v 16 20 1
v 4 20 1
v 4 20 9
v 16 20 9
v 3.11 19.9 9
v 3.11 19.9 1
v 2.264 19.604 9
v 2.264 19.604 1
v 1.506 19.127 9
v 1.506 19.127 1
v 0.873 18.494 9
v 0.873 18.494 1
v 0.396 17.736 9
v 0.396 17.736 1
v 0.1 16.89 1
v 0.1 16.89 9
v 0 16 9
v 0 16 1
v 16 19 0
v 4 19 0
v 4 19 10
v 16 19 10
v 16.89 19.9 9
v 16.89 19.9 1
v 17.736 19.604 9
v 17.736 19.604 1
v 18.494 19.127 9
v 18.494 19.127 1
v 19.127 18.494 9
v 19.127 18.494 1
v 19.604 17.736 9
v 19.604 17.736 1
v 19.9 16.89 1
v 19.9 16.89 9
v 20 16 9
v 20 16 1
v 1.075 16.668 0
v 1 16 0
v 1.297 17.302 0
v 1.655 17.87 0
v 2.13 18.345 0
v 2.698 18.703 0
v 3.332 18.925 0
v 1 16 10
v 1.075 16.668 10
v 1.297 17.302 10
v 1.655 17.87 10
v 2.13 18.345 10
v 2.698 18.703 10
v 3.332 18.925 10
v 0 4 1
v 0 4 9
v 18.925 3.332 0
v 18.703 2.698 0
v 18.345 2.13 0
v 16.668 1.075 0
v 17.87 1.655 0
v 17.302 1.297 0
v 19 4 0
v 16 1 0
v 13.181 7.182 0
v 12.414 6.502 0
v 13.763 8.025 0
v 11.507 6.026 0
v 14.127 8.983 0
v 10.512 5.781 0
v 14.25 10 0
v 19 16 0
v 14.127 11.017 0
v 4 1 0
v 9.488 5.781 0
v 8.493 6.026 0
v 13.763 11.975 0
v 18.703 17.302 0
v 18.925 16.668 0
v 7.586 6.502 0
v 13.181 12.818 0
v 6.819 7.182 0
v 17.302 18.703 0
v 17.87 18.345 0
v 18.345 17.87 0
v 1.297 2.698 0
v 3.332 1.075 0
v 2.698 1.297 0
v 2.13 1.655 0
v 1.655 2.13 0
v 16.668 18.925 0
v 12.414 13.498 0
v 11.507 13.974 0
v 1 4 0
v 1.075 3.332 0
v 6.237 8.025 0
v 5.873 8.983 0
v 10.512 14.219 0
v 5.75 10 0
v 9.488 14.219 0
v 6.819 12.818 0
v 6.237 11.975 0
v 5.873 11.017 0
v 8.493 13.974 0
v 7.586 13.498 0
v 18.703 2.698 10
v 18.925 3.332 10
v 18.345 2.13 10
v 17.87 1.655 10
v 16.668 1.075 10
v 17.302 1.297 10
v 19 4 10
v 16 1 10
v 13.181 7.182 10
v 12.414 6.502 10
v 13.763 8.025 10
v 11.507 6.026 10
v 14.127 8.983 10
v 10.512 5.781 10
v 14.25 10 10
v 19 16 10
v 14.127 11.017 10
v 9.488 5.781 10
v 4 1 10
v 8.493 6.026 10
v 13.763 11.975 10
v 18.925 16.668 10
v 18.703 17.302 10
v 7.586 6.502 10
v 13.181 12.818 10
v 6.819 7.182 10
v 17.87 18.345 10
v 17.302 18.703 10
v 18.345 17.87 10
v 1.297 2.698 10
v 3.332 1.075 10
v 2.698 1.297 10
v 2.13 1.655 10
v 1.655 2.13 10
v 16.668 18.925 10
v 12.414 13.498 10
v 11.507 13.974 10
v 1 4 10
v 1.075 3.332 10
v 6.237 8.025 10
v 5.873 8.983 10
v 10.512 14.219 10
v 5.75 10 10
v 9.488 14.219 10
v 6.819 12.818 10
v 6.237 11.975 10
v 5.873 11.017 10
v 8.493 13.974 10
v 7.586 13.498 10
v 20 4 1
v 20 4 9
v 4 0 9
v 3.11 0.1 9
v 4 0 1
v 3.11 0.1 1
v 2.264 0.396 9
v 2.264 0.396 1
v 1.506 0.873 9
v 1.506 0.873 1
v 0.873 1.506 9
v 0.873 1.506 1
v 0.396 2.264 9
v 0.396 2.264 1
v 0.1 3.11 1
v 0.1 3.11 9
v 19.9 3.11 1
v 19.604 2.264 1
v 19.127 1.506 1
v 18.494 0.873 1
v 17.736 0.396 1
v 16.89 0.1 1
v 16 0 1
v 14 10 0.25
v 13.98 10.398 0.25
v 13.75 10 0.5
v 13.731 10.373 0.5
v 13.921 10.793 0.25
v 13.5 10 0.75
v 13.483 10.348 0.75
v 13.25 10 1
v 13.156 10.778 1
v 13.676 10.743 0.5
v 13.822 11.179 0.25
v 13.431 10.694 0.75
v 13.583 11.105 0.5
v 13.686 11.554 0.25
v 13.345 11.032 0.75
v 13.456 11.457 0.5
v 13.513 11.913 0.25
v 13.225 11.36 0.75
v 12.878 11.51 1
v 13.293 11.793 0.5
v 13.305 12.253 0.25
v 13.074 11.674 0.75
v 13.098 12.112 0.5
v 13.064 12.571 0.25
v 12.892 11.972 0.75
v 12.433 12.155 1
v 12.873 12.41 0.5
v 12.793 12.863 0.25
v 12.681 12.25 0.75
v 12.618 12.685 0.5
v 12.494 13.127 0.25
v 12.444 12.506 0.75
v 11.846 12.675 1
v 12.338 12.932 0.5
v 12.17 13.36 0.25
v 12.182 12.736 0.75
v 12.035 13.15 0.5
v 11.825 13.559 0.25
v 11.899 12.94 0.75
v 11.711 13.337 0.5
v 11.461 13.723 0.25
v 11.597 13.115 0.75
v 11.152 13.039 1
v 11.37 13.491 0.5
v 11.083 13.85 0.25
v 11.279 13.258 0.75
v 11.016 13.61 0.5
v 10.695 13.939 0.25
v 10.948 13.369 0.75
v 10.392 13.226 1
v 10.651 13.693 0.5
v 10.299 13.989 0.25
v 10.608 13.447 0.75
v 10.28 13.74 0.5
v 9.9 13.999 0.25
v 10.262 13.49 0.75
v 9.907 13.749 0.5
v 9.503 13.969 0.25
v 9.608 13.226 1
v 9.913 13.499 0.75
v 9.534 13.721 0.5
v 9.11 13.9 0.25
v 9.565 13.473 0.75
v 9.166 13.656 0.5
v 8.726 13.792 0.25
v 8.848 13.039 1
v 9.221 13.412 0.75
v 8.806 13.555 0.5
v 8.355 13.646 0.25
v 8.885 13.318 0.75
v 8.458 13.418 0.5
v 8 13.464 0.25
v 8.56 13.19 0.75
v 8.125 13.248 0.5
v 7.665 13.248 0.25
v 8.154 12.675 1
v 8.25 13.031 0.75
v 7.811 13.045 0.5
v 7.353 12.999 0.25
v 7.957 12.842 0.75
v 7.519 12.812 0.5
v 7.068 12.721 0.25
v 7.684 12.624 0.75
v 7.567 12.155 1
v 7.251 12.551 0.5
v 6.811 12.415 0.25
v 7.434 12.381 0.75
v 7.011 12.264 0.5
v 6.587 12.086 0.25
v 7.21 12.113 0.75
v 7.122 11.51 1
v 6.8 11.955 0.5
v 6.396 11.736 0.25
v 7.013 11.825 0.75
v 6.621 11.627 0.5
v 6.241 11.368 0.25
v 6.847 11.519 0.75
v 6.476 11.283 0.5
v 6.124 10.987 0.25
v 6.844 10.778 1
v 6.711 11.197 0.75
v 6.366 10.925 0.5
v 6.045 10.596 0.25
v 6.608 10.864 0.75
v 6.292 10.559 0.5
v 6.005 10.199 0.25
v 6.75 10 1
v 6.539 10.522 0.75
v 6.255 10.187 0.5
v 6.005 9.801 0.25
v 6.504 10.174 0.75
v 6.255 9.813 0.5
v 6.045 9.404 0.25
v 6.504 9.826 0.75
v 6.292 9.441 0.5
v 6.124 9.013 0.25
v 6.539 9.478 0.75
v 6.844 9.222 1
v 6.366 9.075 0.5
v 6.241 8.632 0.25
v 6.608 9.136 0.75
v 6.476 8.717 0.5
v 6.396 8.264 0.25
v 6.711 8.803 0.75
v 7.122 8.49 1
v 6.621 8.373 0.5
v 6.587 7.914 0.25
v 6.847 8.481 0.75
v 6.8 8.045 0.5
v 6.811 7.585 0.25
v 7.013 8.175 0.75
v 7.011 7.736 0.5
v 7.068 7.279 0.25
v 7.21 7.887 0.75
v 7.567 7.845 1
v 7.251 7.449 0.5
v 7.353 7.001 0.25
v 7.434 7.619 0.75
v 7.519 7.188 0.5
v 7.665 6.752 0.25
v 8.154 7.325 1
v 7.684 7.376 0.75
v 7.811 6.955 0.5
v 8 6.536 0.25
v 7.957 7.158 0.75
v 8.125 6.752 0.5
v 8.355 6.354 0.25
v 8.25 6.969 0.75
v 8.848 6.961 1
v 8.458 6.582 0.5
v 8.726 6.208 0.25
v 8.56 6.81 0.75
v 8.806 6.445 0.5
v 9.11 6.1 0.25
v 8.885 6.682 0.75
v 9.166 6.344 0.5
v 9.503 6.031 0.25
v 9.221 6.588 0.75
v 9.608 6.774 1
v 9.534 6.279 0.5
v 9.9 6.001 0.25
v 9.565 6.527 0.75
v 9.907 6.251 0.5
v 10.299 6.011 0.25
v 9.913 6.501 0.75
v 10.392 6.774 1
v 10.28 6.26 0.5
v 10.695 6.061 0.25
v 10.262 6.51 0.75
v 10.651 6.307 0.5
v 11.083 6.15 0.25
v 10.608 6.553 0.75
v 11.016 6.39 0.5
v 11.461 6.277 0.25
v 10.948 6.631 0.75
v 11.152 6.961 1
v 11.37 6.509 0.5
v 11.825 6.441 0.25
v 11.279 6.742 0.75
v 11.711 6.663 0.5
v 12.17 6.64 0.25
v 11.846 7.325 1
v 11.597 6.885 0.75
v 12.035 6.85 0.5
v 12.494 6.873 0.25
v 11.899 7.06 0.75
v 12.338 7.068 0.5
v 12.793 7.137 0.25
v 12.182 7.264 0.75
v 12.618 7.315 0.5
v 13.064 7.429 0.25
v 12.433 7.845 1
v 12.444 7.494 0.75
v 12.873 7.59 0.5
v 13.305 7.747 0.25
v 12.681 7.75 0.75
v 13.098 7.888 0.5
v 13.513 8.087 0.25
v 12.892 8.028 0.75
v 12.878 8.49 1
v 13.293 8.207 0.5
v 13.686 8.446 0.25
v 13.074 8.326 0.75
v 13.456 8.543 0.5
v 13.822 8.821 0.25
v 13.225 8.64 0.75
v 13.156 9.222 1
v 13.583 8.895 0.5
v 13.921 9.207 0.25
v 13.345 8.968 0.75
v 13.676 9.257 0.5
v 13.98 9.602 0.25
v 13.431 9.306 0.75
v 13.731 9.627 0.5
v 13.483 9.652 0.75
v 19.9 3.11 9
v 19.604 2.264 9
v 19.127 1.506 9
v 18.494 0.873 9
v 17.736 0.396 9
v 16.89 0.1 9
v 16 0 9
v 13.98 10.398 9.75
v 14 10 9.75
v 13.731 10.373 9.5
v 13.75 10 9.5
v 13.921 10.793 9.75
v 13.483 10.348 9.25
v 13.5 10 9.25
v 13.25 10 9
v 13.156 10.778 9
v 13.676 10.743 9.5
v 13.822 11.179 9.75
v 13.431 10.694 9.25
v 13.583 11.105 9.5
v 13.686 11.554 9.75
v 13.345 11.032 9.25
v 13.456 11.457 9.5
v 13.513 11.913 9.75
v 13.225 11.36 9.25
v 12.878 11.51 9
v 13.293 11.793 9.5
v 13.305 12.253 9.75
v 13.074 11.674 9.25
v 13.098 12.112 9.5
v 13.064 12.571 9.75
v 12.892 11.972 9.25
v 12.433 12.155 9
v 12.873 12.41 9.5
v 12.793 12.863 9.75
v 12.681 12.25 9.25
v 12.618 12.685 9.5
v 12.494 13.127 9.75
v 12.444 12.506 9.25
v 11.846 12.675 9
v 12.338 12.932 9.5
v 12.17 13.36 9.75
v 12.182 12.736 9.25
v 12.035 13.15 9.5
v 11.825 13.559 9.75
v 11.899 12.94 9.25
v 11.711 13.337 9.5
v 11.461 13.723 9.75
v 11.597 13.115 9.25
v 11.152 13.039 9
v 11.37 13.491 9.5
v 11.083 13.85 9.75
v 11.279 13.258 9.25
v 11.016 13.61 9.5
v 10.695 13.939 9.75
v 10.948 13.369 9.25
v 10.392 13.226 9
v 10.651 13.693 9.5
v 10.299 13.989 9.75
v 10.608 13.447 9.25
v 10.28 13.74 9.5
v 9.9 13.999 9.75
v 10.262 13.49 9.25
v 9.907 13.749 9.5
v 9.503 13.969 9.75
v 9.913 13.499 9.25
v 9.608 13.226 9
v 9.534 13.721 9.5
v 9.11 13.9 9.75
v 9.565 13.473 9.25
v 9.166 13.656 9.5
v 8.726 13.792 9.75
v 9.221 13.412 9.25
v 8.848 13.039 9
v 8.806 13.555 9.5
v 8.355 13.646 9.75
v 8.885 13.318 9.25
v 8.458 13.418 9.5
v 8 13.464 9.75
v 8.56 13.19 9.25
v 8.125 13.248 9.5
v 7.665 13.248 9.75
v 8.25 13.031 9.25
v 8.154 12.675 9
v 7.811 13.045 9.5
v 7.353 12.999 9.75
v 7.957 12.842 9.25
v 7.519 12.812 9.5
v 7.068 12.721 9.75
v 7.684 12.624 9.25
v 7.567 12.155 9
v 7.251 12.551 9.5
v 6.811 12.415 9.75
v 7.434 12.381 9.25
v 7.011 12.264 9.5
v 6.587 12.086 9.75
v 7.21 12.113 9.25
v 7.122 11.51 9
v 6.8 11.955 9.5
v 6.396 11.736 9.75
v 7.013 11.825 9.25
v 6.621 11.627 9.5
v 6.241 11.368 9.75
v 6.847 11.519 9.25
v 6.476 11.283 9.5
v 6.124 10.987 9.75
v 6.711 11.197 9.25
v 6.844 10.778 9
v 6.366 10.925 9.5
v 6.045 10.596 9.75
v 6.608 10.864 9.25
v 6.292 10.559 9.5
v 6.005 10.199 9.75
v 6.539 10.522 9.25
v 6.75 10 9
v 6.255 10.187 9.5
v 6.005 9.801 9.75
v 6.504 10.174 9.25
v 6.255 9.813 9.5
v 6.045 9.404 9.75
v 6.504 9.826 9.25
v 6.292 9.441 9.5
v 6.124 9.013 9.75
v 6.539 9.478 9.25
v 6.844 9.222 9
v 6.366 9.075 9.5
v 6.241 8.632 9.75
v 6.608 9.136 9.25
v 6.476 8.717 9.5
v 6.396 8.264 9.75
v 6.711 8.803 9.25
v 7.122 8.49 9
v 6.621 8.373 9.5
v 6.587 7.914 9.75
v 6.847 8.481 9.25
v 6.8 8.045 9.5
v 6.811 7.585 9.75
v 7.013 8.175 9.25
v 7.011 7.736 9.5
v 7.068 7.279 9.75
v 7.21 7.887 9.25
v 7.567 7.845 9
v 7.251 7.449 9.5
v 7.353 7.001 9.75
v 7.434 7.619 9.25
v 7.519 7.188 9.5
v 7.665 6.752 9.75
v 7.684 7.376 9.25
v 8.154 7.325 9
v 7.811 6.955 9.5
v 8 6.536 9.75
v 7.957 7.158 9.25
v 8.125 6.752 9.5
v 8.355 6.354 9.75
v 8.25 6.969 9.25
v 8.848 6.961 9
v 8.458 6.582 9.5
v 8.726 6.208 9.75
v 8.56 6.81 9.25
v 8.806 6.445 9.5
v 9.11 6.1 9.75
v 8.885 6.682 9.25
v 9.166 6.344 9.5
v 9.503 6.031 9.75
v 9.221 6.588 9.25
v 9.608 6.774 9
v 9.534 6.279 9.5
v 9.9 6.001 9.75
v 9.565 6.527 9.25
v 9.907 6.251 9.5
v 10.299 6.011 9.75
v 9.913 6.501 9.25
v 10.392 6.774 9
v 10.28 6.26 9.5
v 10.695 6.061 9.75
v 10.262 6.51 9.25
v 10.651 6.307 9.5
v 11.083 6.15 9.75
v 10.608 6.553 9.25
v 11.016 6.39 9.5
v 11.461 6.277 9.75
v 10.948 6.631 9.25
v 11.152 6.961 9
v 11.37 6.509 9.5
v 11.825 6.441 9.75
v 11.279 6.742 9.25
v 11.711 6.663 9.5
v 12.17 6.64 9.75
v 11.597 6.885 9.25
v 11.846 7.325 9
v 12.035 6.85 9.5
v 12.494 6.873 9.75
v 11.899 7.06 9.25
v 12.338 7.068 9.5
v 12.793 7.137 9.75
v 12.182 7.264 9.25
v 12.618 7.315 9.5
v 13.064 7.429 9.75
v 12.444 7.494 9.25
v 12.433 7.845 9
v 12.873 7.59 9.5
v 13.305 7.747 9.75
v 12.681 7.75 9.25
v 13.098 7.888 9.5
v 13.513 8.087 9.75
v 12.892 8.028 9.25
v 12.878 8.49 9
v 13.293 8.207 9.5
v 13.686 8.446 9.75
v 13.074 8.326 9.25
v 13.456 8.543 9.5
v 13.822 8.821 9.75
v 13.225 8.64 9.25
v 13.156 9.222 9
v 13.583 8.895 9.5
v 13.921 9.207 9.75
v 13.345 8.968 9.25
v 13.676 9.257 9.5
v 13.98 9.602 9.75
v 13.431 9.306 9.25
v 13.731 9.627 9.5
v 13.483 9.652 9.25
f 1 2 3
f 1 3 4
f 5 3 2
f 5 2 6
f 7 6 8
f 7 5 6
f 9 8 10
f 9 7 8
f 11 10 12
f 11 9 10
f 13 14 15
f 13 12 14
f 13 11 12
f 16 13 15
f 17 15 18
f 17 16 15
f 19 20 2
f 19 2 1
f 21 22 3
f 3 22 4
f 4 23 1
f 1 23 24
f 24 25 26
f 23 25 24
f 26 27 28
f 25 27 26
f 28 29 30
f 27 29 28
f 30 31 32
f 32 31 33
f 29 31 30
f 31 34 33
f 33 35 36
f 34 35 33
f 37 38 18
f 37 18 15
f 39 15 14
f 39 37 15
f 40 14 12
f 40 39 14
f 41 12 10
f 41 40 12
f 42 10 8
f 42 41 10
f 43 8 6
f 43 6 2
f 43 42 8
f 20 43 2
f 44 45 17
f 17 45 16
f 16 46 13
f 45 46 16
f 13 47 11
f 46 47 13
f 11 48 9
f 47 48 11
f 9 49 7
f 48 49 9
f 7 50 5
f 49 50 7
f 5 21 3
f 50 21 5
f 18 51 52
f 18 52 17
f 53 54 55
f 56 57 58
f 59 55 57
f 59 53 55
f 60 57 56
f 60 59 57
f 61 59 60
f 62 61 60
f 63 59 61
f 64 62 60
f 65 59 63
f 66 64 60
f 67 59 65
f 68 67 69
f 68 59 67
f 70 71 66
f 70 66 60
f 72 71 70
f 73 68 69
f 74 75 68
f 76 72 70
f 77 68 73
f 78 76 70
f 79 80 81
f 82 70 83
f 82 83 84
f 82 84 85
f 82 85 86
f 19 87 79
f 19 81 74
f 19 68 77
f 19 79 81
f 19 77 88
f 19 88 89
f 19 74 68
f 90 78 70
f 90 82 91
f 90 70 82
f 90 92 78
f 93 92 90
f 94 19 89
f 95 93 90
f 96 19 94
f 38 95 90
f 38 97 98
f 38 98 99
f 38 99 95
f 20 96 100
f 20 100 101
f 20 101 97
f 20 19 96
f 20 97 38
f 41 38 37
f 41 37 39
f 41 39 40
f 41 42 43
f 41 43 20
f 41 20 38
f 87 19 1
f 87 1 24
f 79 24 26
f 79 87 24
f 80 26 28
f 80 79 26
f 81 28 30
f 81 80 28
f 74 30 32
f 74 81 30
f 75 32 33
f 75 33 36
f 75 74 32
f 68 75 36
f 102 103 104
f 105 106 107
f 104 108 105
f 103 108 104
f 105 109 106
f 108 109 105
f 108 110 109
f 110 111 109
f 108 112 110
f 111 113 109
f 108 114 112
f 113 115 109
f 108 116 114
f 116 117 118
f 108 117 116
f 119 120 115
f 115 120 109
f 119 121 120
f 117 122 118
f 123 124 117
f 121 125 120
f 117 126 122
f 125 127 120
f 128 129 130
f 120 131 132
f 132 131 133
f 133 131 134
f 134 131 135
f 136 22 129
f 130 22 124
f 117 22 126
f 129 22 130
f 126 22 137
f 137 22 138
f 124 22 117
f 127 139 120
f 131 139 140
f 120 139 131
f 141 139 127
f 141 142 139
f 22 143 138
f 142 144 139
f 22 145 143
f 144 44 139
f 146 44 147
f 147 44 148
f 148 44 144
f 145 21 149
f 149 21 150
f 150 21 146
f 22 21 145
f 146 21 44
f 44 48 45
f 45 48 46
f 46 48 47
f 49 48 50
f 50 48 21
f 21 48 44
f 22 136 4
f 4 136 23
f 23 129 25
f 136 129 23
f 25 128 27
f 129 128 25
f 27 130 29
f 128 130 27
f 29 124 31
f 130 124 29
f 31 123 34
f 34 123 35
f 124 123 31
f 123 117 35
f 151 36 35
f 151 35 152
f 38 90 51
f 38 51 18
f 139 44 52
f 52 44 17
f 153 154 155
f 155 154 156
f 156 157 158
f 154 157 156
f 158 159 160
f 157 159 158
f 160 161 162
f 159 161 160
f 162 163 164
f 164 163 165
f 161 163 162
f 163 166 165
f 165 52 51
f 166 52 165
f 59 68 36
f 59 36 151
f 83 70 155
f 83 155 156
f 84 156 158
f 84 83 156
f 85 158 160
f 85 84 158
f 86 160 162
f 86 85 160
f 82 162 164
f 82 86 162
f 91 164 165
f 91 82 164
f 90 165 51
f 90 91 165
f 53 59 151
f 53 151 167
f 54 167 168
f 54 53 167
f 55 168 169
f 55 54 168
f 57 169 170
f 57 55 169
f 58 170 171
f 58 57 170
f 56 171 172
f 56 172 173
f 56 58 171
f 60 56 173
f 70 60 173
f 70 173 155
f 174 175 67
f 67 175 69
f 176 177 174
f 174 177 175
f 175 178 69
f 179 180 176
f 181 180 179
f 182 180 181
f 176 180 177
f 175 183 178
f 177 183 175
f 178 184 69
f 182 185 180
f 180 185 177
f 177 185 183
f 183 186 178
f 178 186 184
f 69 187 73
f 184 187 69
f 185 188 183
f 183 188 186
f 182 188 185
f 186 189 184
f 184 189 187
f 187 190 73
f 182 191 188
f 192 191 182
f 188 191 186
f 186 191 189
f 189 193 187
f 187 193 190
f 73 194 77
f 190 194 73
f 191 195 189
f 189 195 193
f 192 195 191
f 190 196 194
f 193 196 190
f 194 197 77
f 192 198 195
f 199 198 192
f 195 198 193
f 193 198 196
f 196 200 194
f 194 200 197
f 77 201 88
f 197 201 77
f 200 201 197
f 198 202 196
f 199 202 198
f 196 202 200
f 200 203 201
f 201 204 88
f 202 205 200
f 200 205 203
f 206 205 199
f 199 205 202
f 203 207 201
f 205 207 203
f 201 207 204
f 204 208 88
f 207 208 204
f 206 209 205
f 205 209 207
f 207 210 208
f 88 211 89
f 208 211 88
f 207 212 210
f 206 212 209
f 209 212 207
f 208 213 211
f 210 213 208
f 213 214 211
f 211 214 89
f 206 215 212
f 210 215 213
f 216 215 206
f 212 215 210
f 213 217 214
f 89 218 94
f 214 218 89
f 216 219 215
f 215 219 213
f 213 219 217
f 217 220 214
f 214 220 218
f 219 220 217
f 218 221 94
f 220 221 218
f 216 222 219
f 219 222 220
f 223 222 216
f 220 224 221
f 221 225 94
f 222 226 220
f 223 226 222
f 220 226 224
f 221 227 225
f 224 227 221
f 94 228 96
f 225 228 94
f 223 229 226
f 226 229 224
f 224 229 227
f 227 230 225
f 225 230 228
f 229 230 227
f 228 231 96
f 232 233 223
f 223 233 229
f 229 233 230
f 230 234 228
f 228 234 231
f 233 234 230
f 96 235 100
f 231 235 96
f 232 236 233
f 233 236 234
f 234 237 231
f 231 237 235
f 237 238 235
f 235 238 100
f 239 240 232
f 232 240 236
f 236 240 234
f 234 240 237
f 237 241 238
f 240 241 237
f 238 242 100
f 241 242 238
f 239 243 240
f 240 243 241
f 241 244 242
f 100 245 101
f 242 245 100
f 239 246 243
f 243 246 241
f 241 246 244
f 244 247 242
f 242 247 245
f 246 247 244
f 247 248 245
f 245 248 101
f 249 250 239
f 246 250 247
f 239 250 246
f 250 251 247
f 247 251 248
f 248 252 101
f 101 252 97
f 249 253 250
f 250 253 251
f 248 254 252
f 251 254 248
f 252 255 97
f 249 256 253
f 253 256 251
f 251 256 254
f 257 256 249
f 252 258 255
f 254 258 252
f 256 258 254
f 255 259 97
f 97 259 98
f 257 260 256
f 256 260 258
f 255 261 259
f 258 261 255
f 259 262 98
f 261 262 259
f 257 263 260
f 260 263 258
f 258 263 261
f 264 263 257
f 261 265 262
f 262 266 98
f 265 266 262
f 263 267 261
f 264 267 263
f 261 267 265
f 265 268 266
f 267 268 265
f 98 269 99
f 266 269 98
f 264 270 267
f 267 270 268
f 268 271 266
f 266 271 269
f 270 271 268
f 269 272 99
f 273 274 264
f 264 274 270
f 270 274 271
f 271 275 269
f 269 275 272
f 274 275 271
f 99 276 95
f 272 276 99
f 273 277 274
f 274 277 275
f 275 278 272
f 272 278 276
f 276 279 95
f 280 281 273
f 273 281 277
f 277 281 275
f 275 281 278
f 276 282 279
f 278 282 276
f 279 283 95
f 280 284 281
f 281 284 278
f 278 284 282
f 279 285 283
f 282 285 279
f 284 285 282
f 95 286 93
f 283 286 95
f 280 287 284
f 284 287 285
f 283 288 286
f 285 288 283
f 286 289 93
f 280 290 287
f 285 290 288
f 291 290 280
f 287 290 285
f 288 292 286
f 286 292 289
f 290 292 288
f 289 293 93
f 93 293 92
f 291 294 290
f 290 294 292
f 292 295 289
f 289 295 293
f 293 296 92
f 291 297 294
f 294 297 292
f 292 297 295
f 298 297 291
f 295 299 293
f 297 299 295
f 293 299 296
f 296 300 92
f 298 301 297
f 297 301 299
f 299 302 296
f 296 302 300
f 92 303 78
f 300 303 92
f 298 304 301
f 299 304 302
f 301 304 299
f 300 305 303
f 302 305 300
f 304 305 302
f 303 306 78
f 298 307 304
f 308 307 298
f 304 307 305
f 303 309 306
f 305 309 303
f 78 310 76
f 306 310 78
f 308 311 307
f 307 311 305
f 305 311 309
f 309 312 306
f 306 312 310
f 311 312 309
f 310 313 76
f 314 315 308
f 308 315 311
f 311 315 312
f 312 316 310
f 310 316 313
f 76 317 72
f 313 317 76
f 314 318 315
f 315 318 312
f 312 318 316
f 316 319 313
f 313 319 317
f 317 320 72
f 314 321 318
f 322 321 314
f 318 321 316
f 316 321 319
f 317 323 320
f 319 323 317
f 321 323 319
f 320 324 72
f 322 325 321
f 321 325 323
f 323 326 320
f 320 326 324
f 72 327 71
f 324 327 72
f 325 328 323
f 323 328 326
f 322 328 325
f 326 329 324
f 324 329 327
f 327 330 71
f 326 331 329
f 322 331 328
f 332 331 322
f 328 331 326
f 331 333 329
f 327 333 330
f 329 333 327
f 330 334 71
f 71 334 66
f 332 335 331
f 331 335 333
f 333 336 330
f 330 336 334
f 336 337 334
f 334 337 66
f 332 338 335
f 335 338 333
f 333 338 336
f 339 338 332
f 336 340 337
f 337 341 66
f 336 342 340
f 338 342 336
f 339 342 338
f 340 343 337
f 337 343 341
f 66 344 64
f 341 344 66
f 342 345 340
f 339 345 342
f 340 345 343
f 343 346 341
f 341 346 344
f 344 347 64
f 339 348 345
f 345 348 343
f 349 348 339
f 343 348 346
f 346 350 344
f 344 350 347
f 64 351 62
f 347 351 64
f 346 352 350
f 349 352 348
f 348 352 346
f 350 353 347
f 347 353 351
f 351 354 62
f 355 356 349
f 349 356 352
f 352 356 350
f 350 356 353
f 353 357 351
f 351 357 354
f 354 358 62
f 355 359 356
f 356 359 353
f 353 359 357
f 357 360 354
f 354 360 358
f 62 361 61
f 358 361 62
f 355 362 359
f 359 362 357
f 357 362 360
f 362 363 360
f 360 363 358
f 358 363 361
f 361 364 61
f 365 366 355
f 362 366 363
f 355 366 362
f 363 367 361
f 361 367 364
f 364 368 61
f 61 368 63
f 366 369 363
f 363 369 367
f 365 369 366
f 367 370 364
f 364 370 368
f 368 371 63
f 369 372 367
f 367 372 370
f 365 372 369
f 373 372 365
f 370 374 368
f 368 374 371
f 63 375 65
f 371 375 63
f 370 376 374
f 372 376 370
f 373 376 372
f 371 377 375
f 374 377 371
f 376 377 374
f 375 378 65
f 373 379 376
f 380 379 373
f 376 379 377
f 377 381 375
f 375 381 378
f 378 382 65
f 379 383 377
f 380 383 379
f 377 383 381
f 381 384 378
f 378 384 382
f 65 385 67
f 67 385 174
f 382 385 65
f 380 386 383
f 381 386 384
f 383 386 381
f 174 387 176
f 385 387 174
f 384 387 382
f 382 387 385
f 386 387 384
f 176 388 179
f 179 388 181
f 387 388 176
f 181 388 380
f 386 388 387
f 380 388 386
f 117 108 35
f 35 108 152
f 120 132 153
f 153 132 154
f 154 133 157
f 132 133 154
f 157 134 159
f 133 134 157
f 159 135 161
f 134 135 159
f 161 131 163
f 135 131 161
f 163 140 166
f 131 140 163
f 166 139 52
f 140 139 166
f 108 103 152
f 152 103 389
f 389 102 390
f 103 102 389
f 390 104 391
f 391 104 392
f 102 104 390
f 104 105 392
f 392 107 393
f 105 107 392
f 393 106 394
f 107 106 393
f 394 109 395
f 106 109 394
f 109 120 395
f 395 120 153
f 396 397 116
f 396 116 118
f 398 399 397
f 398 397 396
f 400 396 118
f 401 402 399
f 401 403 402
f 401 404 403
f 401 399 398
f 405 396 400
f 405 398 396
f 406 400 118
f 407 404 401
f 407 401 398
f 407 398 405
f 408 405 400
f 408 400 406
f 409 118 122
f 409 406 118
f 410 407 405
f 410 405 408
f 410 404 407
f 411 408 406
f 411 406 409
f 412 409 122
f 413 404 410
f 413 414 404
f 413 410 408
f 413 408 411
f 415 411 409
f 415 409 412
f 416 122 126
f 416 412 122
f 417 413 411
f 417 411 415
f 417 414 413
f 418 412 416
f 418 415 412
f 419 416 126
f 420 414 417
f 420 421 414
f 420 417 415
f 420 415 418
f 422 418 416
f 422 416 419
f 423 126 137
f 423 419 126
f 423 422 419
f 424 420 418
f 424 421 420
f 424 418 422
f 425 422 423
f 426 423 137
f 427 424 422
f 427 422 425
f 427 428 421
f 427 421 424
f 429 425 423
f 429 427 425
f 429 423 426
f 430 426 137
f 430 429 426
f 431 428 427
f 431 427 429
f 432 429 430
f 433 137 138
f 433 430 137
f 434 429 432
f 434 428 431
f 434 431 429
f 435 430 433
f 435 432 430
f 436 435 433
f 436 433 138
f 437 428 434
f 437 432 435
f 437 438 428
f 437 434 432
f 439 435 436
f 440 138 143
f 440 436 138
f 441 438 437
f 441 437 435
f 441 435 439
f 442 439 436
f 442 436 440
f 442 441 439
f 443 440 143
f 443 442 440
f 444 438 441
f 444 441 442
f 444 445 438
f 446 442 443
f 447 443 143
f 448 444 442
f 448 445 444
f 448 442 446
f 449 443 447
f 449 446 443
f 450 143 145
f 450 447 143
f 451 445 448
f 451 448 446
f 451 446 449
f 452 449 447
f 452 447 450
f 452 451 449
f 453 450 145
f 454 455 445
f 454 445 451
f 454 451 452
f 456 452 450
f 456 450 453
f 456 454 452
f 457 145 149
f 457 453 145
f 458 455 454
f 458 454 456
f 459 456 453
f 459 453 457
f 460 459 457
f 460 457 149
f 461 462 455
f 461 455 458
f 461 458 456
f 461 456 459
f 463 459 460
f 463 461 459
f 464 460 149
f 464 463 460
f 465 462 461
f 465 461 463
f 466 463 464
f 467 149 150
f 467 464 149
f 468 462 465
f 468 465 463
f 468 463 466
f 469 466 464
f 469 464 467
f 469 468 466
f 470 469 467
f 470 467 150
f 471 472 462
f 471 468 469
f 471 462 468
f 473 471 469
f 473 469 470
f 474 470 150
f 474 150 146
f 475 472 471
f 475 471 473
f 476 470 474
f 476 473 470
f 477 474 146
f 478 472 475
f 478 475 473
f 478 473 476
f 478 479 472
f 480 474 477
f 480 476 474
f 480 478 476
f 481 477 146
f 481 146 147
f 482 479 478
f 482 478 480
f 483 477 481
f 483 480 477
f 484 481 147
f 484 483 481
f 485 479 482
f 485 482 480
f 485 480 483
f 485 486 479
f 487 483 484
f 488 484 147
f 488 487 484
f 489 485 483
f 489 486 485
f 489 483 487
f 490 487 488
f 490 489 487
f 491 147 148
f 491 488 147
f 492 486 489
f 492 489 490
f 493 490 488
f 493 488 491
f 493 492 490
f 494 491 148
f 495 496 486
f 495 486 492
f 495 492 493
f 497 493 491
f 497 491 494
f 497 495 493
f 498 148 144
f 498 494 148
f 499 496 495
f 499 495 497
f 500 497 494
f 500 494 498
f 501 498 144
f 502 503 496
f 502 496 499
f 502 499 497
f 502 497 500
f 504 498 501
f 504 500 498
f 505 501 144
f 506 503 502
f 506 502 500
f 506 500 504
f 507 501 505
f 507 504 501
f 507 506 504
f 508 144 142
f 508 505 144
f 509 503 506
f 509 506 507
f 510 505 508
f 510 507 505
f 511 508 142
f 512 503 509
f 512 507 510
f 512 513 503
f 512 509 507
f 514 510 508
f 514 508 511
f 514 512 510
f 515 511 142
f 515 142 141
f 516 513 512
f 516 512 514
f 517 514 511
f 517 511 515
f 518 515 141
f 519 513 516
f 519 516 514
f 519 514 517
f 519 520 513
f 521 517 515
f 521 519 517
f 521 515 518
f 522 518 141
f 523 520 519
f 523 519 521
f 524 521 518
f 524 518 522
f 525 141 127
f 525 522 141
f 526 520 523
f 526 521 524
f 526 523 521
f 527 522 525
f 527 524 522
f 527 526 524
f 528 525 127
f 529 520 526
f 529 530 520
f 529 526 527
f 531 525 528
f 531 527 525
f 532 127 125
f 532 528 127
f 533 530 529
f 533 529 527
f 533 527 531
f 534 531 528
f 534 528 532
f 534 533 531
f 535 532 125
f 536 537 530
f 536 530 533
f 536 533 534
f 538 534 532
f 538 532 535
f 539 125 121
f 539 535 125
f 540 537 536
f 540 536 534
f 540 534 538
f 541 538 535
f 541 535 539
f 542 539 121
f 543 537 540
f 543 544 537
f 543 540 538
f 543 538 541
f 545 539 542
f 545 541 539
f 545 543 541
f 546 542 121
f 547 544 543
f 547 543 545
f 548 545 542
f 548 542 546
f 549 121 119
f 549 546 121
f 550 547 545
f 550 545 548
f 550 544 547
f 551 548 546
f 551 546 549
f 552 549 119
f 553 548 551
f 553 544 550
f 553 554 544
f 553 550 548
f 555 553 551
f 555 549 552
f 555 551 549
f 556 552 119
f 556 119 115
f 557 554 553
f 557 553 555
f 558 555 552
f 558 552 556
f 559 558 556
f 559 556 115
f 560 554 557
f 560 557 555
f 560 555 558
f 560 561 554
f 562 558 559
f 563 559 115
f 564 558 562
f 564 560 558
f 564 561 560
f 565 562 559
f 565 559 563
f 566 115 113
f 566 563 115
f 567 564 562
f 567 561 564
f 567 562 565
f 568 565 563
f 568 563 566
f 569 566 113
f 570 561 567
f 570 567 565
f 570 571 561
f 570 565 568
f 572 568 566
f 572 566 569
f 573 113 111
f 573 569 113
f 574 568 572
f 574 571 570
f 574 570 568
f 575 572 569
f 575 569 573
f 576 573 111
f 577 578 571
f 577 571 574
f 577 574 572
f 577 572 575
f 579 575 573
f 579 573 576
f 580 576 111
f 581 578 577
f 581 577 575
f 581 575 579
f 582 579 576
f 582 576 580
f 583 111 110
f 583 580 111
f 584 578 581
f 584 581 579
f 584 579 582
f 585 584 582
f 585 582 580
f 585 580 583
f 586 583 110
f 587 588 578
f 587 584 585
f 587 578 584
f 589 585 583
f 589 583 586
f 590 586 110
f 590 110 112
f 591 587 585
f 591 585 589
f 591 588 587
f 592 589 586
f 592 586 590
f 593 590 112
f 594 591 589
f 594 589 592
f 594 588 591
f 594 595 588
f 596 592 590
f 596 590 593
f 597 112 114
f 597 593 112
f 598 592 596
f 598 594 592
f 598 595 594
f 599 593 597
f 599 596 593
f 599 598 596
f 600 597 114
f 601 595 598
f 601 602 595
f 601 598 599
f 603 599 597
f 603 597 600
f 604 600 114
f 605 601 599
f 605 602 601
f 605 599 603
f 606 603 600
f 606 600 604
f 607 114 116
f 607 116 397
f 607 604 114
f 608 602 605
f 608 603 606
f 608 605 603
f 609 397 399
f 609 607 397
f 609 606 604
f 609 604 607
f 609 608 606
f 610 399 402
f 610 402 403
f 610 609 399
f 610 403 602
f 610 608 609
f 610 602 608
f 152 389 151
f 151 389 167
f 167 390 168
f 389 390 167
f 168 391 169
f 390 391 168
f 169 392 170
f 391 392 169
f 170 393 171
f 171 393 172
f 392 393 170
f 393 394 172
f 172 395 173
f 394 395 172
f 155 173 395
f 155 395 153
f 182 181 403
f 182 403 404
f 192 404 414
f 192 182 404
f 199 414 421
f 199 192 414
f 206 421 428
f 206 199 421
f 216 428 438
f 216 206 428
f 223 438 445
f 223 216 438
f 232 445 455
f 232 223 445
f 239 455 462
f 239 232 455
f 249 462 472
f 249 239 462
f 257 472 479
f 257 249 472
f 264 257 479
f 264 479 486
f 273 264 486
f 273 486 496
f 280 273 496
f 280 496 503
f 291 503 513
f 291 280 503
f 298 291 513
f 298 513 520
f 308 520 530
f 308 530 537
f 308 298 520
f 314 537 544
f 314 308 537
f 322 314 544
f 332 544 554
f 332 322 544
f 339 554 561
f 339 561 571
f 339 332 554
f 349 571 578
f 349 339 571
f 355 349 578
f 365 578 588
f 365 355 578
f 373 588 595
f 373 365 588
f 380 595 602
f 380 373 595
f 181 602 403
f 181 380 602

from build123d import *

# Parameters (mm, degrees)
SKETCH_W        = 20
SKETCH_H        = 20
SKETCH_R        = 3.25
PAD_DEPTH       = 10
FILLET_R        = 4
CHAMFER_SIZE    = 1
CHAMFER001_SIZE = 1


with BuildPart() as part:
    # Sketch → Pad (new body)
    with BuildSketch(Plane.XY):
        with Locations((10, 10)):
            Rectangle(SKETCH_W, SKETCH_H)
        with Locations((10, 10)):
            Circle(SKETCH_R, mode=Mode.SUBTRACT)
    extrude(amount=PAD_DEPTH)

    # Fillet
    fillet_edges = [part.edges().sort_by_distance(p)[0] for p in [
        (0, 20, 5),
        (20, 20, 5),
        (0, 0, 5),
        (20, 0, 5),
    ]]
    fillet(fillet_edges, radius=FILLET_R)

    # Chamfer
    chamfer_edges = [part.edges().sort_by_distance(p)[0] for p in [
        (10, 20, 10),
        (1.171573, 18.828427, 10),
        (18.828427, 18.828427, 10),
        (0, 10, 10),
        (20, 10, 10),
        (1.171573, 1.171573, 10),
        (18.828427, 1.171573, 10),
        (10, 0, 10),
        (6.75, 10, 10),
    ]]
    chamfer(chamfer_edges, length=CHAMFER_SIZE)

    # Chamfer001
    chamfer001_edges = [part.edges().sort_by_distance(p)[0] for p in [
        (10, 20, 0),
        (1.171573, 18.828427, 0),
        (18.828427, 18.828427, 0),
        (0, 10, 0),
        (20, 10, 0),
        (1.171573, 1.171573, 0),
        (18.828427, 1.171573, 0),
        (10, 0, 0),
        (6.75, 10, 0),
    ]]
    chamfer(chamfer001_edges, length=CHAMFER001_SIZE)


solid = part.part
